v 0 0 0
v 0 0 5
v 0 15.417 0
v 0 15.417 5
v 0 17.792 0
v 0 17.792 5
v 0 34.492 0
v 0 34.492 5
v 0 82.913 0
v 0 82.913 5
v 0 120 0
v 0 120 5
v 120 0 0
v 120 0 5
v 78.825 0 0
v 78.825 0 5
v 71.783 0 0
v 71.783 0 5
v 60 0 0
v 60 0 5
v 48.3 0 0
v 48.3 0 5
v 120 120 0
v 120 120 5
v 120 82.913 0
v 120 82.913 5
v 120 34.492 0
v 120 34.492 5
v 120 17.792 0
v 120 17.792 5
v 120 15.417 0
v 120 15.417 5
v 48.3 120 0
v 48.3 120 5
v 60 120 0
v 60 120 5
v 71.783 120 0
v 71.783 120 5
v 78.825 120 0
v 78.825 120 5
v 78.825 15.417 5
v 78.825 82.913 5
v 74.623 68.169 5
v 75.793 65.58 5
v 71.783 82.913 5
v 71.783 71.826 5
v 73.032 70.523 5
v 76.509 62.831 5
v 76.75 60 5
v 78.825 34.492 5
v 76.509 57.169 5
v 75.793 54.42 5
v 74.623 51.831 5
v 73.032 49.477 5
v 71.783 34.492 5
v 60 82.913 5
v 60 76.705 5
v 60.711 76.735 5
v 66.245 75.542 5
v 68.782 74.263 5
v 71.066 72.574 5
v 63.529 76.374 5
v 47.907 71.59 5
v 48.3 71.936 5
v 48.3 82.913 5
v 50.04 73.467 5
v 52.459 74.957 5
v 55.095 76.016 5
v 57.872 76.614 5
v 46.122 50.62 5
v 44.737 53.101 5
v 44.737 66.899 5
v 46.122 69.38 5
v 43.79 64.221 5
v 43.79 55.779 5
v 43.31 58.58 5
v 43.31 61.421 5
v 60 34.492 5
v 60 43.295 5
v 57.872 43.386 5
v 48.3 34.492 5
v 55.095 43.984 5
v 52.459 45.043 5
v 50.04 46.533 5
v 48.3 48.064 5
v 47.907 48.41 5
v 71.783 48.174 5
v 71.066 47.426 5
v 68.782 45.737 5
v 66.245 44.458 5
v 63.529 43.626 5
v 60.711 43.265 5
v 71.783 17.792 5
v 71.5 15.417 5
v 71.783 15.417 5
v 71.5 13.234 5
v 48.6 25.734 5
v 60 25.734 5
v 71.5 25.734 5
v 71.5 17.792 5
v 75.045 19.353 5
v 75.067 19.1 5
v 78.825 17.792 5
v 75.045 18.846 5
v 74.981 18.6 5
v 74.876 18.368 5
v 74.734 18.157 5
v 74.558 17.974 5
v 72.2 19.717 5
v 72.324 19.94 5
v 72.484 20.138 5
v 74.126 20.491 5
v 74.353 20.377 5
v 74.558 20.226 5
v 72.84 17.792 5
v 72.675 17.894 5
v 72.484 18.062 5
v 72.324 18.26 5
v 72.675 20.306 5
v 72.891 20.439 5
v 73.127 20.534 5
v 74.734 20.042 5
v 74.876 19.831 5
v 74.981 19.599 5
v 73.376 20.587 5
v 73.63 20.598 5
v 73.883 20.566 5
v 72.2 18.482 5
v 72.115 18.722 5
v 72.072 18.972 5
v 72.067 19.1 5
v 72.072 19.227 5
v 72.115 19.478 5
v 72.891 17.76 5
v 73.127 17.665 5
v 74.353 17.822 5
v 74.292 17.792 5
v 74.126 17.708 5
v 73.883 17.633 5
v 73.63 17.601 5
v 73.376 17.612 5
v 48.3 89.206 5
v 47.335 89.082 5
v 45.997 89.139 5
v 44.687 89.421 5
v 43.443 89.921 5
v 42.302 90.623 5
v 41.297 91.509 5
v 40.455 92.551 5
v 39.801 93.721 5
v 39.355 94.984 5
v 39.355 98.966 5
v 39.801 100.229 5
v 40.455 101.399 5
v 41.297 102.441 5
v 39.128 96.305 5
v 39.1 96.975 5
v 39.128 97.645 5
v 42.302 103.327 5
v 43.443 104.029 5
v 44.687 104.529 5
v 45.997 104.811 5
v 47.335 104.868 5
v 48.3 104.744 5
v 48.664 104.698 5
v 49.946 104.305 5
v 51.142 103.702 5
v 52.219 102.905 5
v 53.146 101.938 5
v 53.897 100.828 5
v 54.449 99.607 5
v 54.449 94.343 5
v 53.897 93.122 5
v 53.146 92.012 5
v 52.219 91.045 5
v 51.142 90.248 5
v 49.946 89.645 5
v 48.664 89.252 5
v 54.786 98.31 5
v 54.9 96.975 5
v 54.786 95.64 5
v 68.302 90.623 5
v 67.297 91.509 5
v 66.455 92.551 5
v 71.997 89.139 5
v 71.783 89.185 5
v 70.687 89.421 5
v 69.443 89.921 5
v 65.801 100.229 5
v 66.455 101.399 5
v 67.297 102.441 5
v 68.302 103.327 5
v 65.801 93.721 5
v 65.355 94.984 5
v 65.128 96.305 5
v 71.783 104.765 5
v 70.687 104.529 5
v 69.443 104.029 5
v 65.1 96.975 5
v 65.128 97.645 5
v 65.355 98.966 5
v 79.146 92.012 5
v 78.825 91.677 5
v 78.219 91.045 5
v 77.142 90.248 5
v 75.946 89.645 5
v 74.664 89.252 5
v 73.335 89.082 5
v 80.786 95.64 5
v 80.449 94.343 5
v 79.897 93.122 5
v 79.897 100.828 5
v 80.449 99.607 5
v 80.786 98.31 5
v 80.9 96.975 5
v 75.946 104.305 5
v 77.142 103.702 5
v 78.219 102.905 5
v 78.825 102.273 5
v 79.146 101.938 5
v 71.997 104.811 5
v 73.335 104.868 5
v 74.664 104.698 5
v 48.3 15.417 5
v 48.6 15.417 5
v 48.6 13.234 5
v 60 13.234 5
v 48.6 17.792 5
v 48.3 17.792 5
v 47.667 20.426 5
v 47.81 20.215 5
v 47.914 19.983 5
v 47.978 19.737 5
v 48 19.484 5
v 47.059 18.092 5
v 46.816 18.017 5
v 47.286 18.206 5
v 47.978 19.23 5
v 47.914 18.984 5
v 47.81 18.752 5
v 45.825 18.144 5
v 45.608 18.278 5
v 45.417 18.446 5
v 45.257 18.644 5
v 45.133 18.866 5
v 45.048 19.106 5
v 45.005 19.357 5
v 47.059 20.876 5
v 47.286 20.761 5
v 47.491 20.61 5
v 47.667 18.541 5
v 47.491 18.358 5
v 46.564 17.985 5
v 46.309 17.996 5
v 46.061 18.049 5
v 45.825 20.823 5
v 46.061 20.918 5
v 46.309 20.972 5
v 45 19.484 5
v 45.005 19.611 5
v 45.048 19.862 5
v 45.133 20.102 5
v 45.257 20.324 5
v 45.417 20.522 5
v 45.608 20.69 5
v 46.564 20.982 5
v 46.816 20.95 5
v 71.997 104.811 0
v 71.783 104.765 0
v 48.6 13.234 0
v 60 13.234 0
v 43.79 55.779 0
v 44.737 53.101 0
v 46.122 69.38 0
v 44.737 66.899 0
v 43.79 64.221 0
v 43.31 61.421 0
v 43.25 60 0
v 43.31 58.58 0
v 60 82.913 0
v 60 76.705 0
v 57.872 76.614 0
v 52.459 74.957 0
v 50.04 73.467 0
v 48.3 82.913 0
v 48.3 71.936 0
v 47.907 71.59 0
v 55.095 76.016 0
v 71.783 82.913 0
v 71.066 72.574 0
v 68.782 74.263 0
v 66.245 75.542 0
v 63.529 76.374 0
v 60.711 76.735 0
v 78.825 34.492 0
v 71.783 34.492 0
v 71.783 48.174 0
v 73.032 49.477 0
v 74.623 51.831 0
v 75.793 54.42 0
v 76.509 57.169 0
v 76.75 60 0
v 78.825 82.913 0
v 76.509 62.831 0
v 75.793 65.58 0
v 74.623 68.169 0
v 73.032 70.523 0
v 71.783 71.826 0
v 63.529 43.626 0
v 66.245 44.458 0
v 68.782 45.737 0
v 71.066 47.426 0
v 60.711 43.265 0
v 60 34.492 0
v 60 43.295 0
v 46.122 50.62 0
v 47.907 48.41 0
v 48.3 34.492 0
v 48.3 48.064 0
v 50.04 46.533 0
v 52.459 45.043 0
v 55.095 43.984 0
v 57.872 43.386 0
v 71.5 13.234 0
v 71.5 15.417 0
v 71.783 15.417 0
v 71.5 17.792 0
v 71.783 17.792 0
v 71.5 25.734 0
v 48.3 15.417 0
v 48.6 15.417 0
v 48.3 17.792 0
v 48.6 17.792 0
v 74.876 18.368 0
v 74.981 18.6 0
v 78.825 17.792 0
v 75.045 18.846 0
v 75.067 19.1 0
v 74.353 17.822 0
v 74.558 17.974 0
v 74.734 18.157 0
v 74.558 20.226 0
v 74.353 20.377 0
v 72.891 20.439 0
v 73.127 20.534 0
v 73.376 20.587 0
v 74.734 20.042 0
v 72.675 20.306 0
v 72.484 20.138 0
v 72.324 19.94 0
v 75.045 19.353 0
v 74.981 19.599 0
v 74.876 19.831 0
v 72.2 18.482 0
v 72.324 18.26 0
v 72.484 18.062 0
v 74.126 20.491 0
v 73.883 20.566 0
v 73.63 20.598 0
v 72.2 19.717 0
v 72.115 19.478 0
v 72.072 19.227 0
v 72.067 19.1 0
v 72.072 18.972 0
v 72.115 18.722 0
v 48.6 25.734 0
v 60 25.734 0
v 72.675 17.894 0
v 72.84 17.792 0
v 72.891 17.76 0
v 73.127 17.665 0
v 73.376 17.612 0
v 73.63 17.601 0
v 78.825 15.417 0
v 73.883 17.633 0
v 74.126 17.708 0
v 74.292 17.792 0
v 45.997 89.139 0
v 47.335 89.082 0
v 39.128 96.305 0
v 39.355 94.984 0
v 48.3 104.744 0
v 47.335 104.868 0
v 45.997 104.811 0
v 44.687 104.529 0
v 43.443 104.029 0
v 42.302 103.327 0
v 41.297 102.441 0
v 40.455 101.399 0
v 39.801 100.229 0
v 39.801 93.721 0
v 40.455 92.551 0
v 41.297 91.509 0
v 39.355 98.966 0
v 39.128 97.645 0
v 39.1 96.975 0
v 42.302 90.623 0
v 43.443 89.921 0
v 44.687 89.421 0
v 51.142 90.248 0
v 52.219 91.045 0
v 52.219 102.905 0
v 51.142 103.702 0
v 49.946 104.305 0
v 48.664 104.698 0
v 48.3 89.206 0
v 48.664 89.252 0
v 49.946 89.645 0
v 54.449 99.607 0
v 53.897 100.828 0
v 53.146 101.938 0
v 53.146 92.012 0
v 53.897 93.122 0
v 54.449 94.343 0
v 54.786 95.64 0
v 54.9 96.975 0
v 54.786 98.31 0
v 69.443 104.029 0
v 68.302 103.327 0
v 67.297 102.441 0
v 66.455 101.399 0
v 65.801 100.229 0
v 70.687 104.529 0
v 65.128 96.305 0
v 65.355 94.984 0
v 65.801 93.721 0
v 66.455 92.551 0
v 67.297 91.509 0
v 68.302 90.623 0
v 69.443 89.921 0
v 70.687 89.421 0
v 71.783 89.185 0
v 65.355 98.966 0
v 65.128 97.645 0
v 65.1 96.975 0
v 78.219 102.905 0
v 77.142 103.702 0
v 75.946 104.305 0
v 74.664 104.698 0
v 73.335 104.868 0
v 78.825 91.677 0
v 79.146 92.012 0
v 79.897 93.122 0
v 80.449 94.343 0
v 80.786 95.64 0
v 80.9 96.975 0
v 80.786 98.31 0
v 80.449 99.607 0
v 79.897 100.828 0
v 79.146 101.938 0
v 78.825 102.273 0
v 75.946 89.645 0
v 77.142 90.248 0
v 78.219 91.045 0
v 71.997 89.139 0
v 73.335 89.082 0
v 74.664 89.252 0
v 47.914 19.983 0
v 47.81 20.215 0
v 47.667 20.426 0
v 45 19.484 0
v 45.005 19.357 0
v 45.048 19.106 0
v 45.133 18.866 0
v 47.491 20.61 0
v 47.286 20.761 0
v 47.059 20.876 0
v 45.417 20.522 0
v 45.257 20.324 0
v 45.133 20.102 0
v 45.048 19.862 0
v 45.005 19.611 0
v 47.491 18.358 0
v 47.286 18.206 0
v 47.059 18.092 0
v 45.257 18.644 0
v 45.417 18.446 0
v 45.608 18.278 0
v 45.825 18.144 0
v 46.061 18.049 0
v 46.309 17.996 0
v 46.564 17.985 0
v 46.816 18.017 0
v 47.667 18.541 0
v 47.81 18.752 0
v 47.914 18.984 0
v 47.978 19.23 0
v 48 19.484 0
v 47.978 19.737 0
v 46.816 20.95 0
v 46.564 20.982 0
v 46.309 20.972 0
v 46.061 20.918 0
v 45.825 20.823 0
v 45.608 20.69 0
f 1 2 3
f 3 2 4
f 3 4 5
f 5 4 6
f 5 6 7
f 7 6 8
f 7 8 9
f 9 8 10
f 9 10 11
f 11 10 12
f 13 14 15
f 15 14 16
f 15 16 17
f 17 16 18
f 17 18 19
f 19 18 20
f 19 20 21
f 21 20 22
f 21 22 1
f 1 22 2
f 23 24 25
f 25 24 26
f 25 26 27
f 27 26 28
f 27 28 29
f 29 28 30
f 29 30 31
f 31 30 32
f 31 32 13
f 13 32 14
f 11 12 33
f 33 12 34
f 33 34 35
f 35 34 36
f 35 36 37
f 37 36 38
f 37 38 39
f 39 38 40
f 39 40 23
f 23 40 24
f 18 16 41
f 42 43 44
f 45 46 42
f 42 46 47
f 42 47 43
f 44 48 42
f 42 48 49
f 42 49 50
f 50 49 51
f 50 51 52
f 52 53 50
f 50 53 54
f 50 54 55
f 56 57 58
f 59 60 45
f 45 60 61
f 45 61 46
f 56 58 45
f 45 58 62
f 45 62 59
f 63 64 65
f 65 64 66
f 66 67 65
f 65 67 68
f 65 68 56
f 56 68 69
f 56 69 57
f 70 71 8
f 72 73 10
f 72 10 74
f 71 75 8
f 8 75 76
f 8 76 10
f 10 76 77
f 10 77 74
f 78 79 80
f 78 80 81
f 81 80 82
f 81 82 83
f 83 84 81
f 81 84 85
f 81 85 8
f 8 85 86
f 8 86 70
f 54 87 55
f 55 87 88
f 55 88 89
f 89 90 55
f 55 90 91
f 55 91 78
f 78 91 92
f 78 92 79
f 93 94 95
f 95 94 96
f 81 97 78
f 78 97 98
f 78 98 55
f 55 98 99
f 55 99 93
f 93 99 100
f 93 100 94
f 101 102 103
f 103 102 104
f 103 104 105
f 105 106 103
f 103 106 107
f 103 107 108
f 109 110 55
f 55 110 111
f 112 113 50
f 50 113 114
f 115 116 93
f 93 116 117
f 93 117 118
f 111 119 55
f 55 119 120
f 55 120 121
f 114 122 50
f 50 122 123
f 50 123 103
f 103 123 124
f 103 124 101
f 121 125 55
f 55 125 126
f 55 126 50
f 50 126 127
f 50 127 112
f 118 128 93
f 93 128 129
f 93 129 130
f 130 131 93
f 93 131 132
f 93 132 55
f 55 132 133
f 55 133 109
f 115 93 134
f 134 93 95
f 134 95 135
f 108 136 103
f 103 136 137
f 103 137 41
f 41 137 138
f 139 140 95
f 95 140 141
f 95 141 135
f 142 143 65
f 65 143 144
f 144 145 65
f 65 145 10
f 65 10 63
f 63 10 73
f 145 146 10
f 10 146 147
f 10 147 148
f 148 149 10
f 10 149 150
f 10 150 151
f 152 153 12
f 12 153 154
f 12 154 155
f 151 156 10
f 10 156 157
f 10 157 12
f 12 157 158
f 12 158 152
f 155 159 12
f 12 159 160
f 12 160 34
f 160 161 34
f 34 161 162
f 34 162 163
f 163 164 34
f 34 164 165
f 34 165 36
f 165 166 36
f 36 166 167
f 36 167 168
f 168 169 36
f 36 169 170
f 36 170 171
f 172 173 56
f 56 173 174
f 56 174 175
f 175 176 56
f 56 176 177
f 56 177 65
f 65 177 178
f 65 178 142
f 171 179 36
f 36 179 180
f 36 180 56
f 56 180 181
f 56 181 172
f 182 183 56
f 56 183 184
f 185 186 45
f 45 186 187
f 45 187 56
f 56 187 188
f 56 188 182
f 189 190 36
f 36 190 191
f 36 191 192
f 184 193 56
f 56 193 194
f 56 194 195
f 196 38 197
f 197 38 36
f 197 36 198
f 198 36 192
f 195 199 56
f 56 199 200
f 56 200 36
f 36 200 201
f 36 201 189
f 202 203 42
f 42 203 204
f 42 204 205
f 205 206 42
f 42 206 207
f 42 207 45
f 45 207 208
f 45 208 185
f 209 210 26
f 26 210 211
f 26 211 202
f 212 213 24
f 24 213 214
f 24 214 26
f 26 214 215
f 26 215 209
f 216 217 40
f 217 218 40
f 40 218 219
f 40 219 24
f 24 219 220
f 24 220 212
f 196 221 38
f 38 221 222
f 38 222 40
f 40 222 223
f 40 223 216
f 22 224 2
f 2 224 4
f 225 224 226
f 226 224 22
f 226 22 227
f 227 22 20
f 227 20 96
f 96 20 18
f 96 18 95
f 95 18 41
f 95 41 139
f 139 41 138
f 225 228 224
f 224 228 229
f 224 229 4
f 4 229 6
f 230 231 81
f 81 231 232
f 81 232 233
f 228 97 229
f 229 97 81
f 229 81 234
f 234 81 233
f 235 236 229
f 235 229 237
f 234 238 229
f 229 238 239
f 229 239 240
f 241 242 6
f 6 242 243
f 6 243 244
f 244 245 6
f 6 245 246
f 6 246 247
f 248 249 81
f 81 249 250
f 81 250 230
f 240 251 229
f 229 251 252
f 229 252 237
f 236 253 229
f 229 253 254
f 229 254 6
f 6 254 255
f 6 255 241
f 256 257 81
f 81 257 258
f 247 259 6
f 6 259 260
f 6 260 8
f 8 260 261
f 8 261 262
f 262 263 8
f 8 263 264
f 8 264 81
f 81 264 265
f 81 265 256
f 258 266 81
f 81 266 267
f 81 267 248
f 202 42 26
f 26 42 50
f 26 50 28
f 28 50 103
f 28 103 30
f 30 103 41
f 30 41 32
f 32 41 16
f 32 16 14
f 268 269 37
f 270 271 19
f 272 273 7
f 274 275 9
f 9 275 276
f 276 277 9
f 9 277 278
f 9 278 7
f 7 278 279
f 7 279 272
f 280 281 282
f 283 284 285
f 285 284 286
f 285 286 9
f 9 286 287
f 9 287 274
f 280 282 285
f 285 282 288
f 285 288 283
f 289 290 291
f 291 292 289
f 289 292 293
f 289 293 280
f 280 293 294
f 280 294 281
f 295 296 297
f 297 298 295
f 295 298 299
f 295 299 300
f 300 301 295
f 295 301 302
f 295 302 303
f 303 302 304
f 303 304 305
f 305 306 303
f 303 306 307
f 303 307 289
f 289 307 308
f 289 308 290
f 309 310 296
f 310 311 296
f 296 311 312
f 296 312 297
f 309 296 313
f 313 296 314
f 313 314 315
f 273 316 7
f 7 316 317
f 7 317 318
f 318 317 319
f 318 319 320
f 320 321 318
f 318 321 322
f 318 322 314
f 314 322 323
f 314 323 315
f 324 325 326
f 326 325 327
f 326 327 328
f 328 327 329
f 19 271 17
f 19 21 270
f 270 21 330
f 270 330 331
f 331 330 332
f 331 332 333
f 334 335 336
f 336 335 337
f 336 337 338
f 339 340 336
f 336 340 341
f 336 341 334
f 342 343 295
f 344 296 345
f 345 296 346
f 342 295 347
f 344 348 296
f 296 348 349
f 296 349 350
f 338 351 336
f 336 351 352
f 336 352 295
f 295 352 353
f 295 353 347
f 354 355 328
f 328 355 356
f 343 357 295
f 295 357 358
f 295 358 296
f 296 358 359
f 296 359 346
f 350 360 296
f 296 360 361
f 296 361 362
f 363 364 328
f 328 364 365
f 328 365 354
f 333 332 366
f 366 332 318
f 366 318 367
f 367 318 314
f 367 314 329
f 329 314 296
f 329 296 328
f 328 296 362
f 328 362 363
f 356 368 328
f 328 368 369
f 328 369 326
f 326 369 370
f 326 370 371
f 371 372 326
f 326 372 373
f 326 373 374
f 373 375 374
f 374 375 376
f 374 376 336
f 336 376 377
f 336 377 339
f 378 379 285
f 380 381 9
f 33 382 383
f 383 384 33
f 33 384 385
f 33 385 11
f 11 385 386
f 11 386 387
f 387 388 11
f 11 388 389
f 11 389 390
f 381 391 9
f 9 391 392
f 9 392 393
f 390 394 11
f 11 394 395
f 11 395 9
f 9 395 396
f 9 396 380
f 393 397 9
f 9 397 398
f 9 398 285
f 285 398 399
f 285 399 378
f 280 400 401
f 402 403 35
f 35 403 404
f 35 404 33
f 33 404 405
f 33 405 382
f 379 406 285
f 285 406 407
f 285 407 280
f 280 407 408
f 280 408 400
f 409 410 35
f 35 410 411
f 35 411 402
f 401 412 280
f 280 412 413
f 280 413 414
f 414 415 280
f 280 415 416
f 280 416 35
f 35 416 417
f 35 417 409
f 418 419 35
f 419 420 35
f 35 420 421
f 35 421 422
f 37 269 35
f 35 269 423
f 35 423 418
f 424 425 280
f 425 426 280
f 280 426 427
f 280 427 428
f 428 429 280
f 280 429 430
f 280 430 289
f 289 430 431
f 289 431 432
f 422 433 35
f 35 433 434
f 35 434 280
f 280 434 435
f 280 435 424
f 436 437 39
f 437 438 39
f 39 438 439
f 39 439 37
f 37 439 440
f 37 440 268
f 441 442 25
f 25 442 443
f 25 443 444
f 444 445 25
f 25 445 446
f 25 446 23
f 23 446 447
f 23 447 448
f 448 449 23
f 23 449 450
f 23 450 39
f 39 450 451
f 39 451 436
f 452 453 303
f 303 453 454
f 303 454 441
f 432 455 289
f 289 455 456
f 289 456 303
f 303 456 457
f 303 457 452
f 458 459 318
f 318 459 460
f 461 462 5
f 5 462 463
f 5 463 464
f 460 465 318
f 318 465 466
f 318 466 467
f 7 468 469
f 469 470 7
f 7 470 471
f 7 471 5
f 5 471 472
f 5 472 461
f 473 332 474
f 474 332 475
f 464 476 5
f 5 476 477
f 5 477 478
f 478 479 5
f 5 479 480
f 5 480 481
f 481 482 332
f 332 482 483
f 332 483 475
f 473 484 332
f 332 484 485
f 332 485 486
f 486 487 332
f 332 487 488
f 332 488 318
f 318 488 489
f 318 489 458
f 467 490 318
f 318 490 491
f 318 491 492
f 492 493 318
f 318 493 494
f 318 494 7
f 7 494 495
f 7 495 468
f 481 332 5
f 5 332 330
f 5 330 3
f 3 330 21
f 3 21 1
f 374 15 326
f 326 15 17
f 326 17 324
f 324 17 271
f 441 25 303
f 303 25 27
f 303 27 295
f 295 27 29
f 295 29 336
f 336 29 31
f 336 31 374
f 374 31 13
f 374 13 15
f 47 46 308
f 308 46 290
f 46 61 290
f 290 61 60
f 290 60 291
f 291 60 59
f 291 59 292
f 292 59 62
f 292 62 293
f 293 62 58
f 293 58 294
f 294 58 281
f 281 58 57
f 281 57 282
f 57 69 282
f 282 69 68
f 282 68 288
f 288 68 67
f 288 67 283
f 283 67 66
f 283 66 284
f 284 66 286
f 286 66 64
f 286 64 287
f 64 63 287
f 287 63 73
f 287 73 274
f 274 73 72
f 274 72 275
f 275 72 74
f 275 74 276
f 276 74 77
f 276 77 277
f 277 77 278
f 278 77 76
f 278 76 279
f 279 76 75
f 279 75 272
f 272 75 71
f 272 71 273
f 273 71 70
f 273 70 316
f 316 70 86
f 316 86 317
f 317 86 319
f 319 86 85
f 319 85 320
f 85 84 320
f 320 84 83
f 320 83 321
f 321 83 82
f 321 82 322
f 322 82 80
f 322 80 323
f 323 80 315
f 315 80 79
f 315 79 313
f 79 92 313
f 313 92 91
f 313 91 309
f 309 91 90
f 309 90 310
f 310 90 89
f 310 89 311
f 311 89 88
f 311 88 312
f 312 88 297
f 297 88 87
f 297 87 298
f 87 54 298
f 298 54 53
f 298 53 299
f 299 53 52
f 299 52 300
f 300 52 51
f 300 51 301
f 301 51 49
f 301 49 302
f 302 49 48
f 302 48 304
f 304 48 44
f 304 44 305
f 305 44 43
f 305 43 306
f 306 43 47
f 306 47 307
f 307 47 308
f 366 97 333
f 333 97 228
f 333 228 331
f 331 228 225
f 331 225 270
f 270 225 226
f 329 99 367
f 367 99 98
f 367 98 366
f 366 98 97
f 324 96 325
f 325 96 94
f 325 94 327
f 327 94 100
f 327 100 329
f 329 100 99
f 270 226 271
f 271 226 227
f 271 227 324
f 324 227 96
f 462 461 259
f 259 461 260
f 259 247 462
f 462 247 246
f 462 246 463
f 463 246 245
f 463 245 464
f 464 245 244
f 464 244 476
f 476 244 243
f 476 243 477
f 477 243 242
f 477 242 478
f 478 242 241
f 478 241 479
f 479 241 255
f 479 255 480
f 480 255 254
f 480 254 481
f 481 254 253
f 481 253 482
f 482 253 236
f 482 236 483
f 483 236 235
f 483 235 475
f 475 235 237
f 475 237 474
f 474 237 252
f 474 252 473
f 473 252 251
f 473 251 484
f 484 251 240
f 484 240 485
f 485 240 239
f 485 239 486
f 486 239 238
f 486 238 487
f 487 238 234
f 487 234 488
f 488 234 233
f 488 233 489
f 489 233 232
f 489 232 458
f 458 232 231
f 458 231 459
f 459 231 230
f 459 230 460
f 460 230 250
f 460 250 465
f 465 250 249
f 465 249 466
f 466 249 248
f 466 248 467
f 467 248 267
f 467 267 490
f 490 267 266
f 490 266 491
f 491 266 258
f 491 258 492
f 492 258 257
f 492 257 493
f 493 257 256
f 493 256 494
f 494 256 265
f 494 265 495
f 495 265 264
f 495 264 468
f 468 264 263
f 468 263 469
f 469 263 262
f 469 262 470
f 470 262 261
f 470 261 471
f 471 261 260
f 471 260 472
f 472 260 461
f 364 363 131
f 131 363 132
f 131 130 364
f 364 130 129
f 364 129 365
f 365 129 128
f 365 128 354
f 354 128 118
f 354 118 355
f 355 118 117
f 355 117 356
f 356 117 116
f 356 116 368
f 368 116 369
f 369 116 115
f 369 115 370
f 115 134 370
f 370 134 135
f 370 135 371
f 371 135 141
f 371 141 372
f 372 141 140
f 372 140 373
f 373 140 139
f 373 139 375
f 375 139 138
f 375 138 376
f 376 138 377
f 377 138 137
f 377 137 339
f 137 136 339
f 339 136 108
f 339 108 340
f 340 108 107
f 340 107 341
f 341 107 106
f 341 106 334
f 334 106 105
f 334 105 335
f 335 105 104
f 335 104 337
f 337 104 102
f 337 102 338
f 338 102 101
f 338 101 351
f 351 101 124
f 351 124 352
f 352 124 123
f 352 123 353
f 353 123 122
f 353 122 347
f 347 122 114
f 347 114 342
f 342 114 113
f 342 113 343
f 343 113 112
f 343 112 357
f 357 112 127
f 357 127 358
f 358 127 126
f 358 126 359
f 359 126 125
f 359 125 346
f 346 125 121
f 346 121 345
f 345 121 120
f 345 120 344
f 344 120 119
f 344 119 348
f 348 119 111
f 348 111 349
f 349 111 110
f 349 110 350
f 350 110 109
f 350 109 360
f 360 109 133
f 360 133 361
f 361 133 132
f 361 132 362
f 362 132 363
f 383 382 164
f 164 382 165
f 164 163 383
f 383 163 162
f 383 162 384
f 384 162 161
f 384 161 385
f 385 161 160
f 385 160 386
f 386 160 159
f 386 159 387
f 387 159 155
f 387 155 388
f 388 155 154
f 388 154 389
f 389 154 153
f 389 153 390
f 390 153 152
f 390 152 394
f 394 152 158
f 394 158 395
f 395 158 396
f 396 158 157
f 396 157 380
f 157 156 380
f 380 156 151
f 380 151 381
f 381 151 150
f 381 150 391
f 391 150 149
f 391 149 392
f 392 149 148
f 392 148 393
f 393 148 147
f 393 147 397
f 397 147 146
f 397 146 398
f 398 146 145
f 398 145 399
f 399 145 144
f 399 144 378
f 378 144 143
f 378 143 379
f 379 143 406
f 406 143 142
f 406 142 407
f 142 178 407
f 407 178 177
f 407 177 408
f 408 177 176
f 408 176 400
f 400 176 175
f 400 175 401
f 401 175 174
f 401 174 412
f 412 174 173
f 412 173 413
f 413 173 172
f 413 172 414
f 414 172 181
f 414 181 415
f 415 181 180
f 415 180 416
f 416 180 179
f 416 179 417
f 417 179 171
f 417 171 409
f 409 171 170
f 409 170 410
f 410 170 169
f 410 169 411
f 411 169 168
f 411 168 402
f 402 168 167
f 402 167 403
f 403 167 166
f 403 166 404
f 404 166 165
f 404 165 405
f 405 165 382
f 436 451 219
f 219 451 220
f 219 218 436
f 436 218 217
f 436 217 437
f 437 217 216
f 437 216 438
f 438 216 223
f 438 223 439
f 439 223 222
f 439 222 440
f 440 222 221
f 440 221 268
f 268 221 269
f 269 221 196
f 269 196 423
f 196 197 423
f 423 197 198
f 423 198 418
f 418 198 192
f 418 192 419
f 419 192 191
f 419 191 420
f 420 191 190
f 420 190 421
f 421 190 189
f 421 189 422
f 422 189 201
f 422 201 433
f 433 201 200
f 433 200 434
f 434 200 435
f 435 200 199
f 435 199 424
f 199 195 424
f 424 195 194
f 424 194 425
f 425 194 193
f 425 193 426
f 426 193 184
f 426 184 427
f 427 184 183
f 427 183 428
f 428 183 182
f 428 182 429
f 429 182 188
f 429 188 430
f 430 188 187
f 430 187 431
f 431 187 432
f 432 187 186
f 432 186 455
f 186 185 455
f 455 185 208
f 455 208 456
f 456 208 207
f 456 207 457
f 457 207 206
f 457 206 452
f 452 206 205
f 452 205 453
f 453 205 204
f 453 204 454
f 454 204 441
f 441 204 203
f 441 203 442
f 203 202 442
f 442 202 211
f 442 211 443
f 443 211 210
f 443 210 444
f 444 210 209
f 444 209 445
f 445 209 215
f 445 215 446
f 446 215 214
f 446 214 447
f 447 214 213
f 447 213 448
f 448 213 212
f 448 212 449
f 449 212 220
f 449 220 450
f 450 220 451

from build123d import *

# Parameters (mm, degrees)
ESBO_O1_W                  = 120
ESBO_O1_H                  = 120
RESSALTO_EXTRUS_O1_DEPTH   = 5
ESBO_O2_R                  = 16.75
CORTE_EXTRUS_O1_DEPTH      = 13
CORTE_EXTRUS_O2_DEPTH      = 28
CORTE_EXTRUS_O2_DEPTH_BACK = 29
ESBO_O3_R                  = 1.5
ESBO_O3_W                  = 22.9
ESBO_O3_H                  = 12.5
CORTE_EXTRUS_O3_DEPTH      = 32
CORTE_EXTRUS_O3_DEPTH_BACK = 28
ESBO_O4_R                  = 7.9


with BuildPart() as part:
    # Esboço1 → Ressalto-extrusão1 (new body)
    with BuildSketch(Plane.XY):
        with Locations((60, 60)):
            Rectangle(ESBO_O1_W, ESBO_O1_H)
    extrude(amount=RESSALTO_EXTRUS_O1_DEPTH)

    # Esboço2 → Corte-extrusão1 (cut)
    with BuildSketch(Plane.XY.offset(5)):
        with Locations((60, 60)):
            Circle(ESBO_O2_R)
    extrude(amount=-CORTE_EXTRUS_O1_DEPTH, mode=Mode.SUBTRACT)

    # Esboço3 → Corte-extrusão2 (cut, two sides: drawn at the far end of the back side and taken through both)
    with BuildSketch(Plane.XY.offset(-CORTE_EXTRUS_O2_DEPTH_BACK)):
        with Locations(Location((46.5, 19.48375, 0), (0, 0, 180))):
            Circle(ESBO_O3_R)
        with Locations(Location((73.566567065, 19.099645167, 0), (0, 0, 180))):
            Circle(ESBO_O3_R)
        with Locations((60.05, 19.48375)):
            Rectangle(ESBO_O3_W, ESBO_O3_H)
    extrude(amount=CORTE_EXTRUS_O2_DEPTH + CORTE_EXTRUS_O2_DEPTH_BACK, mode=Mode.SUBTRACT)

    # Esboço4 → Corte-extrusão3 (cut, two sides: drawn at the far end of the back side and taken through both)
    with BuildSketch(Plane.XY.offset(-CORTE_EXTRUS_O3_DEPTH_BACK)):
        with Locations(Location((47, 96.975019671, 0), (0, 0, 180))):
            Circle(ESBO_O4_R)
        with Locations(Location((73, 96.975019671, 0), (0, 0, 180))):
            Circle(ESBO_O4_R)
    extrude(amount=CORTE_EXTRUS_O3_DEPTH + CORTE_EXTRUS_O3_DEPTH_BACK, mode=Mode.SUBTRACT)


solid = part.part
